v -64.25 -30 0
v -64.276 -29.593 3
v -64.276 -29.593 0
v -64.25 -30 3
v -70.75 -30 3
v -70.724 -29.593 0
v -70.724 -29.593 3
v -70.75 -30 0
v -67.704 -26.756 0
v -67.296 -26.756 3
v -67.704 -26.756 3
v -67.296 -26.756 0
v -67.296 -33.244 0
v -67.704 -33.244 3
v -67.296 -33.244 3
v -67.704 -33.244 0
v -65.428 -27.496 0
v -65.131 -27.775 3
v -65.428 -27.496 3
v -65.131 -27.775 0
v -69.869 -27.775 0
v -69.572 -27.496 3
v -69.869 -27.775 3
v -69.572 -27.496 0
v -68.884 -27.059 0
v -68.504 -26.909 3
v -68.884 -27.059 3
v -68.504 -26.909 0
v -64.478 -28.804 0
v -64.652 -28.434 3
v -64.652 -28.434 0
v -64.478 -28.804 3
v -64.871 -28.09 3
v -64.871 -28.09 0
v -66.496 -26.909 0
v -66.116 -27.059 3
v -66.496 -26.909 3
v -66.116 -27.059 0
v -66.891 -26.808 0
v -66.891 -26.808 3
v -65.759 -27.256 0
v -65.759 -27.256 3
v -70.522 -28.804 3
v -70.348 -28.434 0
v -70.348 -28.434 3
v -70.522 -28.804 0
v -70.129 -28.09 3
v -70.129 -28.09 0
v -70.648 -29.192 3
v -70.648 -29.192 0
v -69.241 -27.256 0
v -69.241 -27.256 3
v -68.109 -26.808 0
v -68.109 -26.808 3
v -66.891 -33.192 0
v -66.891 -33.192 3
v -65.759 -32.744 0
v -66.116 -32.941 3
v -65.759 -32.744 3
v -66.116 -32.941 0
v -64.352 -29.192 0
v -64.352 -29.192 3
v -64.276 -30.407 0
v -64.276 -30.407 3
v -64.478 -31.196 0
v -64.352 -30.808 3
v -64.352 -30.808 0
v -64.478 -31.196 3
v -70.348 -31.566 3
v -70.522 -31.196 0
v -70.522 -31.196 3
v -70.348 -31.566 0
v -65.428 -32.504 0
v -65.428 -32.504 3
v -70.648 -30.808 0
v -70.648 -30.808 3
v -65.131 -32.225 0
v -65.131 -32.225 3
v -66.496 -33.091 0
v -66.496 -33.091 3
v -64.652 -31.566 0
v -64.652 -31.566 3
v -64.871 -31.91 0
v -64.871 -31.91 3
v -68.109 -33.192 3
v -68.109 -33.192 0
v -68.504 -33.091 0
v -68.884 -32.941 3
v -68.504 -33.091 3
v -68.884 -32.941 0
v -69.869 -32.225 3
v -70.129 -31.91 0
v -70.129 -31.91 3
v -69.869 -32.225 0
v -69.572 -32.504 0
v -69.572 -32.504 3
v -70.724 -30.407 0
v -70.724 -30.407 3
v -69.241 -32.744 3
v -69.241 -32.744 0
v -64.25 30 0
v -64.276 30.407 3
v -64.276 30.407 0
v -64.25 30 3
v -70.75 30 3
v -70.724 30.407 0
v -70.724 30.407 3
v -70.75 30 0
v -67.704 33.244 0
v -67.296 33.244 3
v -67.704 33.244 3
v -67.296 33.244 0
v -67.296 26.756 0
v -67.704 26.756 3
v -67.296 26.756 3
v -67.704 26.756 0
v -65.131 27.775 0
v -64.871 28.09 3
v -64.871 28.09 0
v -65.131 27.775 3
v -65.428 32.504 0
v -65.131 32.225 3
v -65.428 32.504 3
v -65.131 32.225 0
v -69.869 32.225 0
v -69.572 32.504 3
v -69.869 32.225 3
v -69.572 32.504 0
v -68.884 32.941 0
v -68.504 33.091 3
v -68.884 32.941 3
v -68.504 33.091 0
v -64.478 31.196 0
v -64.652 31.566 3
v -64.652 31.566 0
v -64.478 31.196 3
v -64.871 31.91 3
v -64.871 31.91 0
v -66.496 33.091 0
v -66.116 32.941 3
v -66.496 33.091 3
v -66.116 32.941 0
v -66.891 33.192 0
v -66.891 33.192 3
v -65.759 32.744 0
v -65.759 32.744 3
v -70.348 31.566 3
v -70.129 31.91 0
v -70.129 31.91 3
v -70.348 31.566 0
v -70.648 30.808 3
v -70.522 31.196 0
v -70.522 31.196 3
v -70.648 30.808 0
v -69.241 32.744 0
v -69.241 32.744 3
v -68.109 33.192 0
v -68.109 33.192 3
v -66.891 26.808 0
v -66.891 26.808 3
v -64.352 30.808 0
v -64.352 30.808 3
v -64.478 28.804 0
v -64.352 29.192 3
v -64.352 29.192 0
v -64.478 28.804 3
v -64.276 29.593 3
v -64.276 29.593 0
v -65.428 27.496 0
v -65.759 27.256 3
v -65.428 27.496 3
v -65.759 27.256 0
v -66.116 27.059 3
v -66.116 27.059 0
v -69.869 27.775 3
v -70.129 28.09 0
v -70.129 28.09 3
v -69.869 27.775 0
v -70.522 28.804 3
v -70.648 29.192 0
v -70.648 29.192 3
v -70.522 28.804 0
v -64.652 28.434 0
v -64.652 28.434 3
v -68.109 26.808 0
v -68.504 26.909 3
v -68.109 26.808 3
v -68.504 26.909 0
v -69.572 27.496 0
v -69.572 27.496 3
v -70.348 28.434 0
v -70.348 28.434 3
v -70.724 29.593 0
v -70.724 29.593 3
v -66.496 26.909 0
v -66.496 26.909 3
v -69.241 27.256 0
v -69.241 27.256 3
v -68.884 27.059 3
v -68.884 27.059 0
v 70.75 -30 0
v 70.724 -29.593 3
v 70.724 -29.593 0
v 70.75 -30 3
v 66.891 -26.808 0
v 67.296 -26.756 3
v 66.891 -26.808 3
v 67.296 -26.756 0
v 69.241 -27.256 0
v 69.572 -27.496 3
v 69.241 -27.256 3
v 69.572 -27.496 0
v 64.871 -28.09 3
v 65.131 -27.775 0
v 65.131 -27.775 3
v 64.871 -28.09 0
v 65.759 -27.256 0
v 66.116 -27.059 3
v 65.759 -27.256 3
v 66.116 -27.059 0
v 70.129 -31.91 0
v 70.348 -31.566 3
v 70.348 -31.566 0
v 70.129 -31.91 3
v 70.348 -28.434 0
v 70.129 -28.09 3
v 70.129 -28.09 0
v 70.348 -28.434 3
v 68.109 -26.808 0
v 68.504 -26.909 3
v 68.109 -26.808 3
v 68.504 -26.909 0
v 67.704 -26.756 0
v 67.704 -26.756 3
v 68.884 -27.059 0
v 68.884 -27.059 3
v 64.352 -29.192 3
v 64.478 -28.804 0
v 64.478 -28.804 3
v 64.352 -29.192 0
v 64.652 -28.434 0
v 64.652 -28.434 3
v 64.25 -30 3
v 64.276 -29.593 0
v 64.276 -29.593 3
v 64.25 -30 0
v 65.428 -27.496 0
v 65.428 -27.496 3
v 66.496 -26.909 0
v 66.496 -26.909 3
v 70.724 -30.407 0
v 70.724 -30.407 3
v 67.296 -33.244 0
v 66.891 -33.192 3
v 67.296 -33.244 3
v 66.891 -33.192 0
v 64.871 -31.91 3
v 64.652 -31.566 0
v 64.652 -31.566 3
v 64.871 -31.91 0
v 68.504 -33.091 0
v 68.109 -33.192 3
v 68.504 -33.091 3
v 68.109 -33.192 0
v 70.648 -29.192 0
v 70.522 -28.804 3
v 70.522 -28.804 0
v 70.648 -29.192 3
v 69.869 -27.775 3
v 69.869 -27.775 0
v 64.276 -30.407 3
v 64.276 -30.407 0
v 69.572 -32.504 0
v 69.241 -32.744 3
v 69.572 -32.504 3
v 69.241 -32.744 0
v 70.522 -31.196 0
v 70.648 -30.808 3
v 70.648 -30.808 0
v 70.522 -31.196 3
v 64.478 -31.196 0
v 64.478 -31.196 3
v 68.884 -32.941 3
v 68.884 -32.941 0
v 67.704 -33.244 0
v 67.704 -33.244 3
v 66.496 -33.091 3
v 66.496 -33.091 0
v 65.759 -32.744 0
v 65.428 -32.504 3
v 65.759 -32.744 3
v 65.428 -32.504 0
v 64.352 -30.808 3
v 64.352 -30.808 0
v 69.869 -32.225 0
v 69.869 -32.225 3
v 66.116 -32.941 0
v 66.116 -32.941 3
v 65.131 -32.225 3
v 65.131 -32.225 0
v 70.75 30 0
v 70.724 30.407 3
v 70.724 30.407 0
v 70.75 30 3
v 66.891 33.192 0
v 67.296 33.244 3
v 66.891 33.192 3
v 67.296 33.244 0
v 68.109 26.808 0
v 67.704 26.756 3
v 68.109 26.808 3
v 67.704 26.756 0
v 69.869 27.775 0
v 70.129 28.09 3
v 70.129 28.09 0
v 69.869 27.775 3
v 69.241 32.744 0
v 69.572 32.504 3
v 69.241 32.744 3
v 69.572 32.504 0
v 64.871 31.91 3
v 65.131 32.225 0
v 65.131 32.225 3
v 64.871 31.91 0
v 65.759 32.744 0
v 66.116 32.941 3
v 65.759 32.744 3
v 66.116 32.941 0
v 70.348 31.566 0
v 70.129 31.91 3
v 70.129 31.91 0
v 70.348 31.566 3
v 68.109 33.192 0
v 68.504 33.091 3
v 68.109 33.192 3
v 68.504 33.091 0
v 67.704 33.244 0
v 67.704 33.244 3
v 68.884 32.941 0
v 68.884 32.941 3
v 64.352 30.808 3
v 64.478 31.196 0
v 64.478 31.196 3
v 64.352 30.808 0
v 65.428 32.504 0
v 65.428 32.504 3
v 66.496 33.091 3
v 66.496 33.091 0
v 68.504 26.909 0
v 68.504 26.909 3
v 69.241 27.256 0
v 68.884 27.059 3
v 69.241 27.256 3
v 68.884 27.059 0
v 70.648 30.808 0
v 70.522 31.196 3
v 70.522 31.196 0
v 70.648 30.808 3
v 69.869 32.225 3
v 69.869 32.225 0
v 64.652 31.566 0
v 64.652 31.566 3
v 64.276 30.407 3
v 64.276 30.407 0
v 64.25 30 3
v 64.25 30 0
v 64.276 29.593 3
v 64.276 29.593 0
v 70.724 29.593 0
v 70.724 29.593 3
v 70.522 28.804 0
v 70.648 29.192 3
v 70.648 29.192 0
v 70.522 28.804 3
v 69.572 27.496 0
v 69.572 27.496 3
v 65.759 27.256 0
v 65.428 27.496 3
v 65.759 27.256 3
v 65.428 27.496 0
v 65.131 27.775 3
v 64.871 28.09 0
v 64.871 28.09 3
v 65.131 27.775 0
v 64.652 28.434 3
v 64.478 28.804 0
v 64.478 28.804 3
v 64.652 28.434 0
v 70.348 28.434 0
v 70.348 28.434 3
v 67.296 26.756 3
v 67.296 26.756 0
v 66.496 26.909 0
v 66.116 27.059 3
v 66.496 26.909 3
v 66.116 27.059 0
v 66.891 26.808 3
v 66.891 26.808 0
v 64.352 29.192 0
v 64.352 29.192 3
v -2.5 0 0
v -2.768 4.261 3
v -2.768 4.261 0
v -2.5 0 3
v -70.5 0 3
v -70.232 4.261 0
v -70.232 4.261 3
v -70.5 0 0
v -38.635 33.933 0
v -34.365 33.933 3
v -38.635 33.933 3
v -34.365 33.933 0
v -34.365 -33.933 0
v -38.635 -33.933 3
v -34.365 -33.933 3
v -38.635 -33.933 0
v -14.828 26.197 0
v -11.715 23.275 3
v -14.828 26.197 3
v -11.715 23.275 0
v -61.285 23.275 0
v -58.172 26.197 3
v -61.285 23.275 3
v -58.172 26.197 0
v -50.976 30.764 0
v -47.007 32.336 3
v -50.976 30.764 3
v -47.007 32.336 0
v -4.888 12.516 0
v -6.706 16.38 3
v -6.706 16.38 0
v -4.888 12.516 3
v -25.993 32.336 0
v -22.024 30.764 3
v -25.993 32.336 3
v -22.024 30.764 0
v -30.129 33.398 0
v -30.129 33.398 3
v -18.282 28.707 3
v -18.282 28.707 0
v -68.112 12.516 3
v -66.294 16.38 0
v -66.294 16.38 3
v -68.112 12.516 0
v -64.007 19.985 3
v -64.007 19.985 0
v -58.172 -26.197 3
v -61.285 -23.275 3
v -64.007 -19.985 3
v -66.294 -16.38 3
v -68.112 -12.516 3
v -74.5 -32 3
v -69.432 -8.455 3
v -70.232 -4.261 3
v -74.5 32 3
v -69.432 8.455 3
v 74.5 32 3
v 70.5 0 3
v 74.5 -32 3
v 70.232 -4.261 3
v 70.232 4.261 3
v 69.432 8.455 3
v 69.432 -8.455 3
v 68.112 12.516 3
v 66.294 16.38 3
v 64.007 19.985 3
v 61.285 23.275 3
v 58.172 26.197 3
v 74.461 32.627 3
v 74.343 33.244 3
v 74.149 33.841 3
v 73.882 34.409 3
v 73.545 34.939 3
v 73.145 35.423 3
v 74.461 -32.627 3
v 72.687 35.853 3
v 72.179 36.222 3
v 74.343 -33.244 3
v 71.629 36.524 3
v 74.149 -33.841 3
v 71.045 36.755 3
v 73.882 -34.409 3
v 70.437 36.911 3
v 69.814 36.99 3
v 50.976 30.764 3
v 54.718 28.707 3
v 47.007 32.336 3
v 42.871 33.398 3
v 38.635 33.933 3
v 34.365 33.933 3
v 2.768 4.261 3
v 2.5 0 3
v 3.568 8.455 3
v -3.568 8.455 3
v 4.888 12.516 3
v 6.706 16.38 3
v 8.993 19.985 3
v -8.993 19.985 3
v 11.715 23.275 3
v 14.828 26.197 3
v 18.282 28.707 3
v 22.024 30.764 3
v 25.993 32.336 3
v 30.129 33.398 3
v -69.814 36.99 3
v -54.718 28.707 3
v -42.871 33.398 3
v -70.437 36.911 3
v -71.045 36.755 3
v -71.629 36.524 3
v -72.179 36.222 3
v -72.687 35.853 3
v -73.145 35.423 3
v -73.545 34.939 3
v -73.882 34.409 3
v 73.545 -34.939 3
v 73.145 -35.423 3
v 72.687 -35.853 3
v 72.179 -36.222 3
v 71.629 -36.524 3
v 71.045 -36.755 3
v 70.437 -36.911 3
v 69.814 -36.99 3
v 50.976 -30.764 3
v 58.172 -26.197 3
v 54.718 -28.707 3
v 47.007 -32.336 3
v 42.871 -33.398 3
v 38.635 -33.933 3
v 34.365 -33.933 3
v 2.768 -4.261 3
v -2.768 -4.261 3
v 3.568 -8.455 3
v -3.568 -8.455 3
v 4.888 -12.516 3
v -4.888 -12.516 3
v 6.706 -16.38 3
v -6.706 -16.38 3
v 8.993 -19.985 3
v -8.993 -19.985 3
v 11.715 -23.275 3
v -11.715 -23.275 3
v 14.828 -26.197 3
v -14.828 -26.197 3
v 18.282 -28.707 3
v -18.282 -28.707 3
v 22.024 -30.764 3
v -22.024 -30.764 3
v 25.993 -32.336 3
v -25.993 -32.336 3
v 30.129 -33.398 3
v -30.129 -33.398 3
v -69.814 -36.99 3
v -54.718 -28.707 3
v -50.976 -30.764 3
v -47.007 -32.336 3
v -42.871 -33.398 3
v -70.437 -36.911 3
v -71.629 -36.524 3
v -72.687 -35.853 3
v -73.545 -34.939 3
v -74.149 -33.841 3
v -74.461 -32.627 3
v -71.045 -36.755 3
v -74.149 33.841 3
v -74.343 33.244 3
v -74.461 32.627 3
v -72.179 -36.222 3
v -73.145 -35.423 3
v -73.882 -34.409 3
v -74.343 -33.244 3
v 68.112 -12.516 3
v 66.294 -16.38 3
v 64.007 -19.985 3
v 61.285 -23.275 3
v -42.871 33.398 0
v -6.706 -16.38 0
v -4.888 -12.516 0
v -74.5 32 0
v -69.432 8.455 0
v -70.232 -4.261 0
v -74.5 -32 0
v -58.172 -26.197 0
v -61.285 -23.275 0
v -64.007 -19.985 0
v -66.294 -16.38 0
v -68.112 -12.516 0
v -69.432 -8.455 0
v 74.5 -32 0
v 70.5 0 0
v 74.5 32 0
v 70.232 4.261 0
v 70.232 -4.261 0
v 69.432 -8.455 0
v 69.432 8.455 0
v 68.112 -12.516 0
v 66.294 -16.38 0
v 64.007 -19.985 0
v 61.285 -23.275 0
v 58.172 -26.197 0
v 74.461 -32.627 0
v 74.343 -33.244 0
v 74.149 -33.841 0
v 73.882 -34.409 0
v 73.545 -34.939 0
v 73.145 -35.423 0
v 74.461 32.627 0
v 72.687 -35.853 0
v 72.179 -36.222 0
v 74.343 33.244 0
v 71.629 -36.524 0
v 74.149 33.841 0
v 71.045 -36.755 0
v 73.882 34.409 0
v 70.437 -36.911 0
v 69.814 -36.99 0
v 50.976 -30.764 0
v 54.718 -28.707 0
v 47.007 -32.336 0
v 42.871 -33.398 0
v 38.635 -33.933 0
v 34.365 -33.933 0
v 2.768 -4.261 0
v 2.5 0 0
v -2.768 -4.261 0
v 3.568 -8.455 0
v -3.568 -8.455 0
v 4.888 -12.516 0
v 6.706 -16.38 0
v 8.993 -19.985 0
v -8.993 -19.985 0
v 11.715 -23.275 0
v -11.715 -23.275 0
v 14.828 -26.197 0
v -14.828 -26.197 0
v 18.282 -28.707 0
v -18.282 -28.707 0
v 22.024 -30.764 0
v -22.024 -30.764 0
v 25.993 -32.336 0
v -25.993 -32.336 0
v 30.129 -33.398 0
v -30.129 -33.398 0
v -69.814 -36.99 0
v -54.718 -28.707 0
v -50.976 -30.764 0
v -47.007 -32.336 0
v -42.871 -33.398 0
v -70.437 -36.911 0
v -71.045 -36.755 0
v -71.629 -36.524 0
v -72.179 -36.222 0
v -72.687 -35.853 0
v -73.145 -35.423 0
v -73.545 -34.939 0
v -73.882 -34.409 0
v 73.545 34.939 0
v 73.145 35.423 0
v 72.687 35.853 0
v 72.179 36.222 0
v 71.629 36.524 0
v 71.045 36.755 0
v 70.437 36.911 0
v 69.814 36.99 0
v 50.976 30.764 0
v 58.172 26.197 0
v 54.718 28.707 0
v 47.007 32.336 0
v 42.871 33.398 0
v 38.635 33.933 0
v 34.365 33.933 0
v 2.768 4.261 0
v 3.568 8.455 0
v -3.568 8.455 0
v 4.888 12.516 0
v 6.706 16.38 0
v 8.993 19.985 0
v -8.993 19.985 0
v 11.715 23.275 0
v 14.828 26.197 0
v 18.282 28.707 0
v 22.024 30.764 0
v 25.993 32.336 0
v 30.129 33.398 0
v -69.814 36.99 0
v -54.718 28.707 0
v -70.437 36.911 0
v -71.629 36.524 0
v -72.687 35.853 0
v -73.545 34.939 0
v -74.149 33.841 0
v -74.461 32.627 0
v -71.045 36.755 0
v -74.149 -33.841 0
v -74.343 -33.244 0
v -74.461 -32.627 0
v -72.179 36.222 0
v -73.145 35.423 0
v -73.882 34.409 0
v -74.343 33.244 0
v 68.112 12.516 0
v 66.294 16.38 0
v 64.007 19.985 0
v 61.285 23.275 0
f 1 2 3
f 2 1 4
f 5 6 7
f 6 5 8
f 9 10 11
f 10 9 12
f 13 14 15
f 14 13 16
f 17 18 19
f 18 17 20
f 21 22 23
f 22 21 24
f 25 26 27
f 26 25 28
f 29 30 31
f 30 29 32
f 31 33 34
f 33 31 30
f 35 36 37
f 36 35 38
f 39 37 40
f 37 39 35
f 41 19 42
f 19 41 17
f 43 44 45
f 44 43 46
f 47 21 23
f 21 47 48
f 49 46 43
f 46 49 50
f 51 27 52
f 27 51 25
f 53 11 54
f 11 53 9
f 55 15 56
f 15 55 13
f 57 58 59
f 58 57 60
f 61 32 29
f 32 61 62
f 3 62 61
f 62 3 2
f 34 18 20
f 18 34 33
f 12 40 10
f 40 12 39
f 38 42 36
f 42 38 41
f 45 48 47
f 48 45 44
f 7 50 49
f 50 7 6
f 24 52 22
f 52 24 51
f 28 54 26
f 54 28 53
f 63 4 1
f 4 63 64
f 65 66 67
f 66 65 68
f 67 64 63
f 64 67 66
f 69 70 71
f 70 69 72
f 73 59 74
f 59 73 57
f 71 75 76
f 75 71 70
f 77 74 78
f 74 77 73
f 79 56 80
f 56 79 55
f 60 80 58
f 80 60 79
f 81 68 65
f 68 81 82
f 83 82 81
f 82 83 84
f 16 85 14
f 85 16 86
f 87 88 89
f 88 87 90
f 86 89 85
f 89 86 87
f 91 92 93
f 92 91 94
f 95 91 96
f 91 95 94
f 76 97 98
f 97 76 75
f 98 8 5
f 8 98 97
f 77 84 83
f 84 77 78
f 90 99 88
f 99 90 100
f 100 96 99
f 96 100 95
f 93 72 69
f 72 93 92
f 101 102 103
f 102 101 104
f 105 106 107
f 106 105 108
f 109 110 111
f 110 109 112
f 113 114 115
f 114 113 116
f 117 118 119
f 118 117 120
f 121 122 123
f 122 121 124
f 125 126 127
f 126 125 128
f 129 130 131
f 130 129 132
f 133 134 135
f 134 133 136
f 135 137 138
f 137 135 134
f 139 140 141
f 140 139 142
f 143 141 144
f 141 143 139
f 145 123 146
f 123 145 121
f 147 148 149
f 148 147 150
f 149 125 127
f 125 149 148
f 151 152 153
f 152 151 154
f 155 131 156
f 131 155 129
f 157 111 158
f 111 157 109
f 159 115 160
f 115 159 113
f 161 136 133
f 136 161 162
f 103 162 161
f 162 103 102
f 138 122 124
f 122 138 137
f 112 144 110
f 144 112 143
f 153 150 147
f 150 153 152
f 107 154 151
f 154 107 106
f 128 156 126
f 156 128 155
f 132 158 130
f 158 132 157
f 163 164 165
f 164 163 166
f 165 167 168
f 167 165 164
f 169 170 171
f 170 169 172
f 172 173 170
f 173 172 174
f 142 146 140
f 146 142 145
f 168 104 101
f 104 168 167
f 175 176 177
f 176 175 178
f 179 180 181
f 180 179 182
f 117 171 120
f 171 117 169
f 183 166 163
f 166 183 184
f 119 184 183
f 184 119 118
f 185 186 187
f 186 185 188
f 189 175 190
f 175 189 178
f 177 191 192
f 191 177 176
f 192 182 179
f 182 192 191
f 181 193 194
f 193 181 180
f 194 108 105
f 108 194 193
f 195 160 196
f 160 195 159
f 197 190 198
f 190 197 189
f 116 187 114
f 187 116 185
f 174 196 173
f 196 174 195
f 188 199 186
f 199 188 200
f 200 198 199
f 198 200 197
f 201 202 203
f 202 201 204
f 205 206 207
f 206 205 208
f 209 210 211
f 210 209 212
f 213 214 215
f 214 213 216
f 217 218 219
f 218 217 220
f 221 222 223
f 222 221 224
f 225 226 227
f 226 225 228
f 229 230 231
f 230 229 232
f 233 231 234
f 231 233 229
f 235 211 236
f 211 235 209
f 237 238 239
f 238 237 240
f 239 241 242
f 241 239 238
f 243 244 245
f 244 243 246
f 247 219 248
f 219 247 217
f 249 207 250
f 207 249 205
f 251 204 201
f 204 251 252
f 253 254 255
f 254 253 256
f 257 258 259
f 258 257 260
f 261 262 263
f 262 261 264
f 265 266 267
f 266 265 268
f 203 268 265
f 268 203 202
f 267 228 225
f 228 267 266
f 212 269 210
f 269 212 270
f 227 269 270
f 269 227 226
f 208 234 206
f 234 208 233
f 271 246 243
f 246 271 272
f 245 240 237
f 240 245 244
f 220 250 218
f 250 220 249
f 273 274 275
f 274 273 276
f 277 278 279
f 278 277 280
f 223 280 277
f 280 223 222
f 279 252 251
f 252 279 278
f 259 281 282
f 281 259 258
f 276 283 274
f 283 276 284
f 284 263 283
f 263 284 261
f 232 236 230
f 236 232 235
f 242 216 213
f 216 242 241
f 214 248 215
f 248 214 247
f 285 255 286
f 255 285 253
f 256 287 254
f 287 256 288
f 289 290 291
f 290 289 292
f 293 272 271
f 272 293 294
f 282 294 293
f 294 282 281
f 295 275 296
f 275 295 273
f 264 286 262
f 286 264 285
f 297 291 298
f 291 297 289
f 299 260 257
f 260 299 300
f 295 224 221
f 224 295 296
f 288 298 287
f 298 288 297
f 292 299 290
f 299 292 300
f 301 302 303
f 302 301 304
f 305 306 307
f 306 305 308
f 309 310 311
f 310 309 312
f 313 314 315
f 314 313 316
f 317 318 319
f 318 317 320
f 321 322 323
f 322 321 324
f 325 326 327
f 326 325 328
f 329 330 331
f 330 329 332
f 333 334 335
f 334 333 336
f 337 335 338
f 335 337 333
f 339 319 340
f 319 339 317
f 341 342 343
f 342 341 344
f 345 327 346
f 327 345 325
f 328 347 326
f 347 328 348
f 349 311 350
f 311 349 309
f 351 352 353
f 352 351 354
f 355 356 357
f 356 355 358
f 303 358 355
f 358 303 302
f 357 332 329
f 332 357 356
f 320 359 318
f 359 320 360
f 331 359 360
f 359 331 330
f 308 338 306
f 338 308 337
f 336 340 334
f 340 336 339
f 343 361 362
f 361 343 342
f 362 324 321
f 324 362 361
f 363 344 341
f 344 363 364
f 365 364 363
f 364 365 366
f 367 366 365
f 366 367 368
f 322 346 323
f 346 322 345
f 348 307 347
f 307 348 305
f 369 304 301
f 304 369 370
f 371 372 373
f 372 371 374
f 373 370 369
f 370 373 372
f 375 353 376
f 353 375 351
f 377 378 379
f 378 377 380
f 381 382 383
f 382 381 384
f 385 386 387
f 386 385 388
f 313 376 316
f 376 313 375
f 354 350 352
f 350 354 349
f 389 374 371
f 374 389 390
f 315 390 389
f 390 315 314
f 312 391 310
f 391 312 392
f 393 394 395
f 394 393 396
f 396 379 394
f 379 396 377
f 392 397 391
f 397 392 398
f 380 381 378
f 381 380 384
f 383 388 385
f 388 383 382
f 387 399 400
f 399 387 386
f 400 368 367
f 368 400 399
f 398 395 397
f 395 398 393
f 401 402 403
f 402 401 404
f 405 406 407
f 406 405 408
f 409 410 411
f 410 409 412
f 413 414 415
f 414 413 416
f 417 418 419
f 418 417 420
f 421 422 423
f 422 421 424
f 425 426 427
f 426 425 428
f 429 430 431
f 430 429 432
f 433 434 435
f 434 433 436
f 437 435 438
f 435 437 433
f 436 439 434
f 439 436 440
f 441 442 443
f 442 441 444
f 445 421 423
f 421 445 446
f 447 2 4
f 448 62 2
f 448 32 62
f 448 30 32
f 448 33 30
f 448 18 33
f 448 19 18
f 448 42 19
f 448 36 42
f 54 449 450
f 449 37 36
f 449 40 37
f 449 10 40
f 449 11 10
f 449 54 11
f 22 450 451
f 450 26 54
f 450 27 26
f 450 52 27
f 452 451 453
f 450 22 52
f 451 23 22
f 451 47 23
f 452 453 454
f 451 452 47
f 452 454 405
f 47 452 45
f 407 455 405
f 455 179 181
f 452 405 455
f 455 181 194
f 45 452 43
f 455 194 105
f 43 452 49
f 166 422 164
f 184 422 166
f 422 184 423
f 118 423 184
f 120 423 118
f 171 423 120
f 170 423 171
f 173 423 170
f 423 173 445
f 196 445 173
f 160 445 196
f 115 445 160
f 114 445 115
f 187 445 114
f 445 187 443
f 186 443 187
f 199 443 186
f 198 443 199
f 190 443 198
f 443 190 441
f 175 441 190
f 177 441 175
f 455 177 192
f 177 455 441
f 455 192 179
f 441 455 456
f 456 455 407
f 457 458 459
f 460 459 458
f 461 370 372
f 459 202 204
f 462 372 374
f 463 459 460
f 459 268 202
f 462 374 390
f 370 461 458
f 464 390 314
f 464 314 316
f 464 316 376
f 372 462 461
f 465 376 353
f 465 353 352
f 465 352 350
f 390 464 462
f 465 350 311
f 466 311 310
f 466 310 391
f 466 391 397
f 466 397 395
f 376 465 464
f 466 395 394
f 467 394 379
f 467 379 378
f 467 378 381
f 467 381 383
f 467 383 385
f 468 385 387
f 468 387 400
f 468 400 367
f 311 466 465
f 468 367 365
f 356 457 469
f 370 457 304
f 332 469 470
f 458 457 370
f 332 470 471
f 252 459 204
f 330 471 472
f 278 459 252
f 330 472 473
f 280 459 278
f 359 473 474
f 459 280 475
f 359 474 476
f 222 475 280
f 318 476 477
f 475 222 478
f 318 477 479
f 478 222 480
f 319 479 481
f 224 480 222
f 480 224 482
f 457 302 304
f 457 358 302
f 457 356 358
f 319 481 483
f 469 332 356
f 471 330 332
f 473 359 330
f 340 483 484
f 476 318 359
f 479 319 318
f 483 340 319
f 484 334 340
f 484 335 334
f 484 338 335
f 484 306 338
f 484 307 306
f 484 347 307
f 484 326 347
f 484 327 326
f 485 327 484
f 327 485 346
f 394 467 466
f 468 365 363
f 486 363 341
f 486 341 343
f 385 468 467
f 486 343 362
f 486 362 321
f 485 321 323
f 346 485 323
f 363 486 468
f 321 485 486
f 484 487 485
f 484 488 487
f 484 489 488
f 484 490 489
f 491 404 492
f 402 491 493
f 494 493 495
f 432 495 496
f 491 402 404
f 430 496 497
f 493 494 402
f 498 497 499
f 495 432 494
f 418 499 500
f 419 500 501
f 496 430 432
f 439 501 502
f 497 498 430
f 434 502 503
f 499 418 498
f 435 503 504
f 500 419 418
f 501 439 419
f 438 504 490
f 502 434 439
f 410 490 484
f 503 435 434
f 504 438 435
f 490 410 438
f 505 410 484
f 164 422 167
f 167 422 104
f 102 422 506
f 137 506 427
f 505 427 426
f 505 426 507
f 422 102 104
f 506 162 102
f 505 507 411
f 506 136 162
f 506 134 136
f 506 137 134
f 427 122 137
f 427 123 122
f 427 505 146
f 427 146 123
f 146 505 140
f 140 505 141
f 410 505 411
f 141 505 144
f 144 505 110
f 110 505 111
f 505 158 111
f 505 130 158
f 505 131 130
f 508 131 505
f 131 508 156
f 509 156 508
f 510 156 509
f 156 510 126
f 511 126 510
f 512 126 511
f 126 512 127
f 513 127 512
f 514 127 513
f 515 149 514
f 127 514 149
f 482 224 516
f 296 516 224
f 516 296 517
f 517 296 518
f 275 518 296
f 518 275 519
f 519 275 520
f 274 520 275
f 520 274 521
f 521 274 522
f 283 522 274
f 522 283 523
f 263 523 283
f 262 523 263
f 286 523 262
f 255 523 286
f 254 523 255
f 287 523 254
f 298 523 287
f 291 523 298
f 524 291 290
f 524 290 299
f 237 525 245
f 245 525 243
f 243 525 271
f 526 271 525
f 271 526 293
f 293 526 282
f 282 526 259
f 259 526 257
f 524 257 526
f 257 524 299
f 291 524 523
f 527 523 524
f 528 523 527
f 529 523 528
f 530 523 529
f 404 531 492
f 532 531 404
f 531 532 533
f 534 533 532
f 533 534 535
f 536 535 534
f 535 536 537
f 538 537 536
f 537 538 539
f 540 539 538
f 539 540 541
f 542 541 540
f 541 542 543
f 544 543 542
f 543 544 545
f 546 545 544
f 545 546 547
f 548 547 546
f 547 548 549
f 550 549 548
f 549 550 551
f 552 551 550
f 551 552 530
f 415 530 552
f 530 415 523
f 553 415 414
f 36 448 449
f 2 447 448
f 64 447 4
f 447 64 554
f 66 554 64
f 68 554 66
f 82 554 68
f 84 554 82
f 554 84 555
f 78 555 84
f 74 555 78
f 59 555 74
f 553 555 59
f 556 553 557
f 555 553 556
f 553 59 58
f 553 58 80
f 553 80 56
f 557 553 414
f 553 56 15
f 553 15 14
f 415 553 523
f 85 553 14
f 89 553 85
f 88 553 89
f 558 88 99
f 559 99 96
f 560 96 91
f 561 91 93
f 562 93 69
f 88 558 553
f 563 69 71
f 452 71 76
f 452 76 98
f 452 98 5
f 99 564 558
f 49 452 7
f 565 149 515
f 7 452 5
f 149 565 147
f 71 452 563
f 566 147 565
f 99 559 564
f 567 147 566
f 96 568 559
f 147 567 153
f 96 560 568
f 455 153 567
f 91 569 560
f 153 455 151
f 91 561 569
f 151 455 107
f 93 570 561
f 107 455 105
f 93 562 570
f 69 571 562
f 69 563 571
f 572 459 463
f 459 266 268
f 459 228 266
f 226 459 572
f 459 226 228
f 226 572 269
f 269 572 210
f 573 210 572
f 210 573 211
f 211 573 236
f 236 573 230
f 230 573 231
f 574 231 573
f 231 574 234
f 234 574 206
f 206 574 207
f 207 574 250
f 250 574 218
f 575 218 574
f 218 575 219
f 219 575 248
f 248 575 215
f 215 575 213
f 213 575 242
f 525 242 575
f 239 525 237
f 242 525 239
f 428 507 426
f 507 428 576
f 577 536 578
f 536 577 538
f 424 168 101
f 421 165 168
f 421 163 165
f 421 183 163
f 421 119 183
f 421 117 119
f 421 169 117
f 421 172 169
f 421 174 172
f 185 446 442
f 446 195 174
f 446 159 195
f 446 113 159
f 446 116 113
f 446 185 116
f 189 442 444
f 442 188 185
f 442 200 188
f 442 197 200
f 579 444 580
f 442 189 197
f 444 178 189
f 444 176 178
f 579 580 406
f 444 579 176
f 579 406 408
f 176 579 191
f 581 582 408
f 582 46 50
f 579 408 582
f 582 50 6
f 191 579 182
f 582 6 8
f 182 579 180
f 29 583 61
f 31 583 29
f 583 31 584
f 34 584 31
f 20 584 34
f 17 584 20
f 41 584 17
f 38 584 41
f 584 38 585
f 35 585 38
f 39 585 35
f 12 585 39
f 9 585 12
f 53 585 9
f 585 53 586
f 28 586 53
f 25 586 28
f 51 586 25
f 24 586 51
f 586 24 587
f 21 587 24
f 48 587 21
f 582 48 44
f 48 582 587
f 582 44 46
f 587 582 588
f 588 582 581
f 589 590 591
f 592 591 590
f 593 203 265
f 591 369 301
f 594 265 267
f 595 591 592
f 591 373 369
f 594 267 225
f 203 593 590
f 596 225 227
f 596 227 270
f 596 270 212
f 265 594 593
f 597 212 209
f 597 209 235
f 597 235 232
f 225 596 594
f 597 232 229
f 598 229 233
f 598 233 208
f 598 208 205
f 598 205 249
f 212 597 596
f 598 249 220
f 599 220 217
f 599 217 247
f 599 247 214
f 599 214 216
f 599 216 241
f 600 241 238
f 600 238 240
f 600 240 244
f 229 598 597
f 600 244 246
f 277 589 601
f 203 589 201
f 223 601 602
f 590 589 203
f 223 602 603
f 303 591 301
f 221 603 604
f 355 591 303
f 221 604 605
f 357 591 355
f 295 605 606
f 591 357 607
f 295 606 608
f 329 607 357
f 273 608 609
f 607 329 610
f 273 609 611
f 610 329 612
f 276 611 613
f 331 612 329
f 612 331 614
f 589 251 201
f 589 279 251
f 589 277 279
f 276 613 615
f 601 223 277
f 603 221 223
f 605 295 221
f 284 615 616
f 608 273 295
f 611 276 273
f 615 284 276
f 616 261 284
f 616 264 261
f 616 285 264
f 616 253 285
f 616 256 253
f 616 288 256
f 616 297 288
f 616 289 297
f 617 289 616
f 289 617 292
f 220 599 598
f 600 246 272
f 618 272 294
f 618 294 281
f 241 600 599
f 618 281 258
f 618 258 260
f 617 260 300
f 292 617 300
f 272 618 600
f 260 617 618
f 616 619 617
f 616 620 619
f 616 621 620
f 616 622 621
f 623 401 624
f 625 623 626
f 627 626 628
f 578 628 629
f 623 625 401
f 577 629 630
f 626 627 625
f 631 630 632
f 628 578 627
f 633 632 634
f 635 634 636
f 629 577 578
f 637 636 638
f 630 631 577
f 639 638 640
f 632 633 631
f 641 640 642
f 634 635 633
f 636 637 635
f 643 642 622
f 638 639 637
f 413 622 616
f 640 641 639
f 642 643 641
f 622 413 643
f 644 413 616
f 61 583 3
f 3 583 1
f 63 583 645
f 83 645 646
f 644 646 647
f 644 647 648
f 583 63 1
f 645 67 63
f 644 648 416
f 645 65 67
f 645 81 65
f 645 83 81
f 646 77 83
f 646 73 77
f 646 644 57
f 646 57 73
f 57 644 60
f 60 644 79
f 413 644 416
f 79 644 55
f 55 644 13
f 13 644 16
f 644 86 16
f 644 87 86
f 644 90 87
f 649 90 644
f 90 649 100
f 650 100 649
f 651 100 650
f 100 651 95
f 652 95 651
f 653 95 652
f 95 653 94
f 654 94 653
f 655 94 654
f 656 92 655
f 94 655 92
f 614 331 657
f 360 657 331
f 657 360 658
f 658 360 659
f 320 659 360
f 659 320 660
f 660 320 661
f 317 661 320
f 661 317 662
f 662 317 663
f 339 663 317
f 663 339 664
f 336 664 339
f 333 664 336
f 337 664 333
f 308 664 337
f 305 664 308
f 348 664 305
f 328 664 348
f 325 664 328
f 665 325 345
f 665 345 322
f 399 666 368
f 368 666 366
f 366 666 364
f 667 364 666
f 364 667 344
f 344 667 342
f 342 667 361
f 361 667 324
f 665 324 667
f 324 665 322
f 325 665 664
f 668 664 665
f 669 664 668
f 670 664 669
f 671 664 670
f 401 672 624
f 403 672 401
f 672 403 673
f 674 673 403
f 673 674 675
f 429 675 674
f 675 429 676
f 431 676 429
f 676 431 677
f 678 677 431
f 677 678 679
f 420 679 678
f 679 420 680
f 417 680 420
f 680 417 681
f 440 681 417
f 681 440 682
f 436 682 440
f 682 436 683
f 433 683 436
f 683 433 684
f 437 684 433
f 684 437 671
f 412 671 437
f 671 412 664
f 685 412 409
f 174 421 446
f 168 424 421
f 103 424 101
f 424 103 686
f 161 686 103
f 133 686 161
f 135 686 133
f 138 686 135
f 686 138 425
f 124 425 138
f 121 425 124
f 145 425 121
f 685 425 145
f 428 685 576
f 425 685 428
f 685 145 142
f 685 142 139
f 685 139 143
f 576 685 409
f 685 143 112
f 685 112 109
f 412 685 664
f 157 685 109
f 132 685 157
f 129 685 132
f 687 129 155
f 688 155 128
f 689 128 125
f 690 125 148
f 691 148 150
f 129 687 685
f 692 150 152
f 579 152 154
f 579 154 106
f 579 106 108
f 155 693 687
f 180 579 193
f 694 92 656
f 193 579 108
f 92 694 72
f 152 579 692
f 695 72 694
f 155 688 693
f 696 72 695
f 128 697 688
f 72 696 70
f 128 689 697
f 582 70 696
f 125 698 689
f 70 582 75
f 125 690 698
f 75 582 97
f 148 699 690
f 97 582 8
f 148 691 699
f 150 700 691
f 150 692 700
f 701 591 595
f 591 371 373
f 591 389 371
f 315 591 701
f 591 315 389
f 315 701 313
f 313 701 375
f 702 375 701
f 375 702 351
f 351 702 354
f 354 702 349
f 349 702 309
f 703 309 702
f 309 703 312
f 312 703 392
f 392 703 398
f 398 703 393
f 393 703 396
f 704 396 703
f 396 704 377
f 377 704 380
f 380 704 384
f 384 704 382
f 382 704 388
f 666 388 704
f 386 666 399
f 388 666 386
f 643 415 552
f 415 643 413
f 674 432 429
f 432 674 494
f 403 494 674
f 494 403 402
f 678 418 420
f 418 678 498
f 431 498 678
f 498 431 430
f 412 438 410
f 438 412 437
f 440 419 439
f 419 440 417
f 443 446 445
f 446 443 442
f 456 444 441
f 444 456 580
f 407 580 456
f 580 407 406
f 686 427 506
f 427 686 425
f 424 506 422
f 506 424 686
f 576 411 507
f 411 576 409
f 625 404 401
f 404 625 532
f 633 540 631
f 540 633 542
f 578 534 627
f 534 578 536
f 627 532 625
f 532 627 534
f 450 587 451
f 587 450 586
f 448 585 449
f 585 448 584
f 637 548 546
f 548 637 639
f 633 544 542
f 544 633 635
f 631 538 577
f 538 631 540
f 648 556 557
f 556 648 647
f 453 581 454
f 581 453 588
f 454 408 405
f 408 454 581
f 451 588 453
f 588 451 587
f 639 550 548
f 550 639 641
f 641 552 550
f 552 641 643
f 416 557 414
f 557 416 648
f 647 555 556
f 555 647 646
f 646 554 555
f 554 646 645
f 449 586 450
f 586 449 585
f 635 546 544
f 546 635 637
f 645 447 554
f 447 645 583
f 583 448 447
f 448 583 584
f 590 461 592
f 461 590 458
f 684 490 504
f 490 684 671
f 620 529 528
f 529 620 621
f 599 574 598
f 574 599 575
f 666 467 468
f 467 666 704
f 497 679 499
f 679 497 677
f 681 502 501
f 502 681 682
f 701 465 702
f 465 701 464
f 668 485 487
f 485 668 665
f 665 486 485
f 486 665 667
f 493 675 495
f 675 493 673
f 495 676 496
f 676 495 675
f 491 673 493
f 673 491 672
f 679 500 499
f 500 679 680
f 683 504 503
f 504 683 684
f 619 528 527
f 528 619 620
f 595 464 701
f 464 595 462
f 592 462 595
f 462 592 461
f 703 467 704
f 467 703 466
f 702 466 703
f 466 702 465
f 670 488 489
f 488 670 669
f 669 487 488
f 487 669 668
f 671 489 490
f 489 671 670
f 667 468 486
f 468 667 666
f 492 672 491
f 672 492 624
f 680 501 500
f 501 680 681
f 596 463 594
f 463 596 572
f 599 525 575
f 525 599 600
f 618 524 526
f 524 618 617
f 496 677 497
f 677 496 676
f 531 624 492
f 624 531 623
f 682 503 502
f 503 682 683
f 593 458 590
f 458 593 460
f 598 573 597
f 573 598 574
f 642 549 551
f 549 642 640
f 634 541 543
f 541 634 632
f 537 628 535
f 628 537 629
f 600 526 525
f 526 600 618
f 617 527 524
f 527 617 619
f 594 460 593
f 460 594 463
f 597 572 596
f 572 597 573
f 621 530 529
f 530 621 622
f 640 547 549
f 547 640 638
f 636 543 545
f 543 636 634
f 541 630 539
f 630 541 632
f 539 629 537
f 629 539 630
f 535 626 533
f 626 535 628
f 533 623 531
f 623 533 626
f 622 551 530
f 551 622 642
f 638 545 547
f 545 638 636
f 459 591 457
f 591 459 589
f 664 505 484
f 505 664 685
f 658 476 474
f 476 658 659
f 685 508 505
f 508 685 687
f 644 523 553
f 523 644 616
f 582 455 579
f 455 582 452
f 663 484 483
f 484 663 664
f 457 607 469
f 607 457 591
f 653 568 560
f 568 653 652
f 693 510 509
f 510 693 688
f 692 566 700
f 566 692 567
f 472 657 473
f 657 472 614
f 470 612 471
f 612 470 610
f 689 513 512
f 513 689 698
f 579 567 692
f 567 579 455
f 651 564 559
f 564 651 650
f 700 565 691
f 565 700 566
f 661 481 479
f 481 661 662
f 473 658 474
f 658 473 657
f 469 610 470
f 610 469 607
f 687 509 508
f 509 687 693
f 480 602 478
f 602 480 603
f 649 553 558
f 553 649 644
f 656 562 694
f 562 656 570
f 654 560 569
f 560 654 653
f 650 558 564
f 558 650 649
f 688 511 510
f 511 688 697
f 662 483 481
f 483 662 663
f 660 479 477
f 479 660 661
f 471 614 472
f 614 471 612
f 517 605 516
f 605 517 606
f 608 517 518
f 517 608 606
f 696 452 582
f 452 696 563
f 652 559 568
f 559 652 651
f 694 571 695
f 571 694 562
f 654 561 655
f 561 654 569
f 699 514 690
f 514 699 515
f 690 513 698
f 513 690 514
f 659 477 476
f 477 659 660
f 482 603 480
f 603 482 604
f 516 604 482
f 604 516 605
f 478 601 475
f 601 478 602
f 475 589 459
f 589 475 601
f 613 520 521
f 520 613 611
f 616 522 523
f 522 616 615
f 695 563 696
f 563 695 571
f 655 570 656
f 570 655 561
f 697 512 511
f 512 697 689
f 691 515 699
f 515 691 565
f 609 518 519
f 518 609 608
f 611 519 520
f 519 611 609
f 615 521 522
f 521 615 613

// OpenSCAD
$fn = 50;


difference() {
	union() {
		hull() {
			translate(v = [-69.5000000000, 32.0000000000, 0]) {
				cylinder(h = 3, r = 5);
			}
			translate(v = [69.5000000000, 32.0000000000, 0]) {
				cylinder(h = 3, r = 5);
			}
			translate(v = [-69.5000000000, -32.0000000000, 0]) {
				cylinder(h = 3, r = 5);
			}
			translate(v = [69.5000000000, -32.0000000000, 0]) {
				cylinder(h = 3, r = 5);
			}
		}
	}
	union() {
		#translate(v = [-67.5000000000, -30.0000000000, -100.0000000000]) {
			cylinder(h = 200, r = 3.2500000000);
		}
		#translate(v = [-67.5000000000, 30.0000000000, -100.0000000000]) {
			cylinder(h = 200, r = 3.2500000000);
		}
		#translate(v = [67.5000000000, -30.0000000000, -100.0000000000]) {
			cylinder(h = 200, r = 3.2500000000);
		}
		#translate(v = [67.5000000000, 30.0000000000, -100.0000000000]) {
			cylinder(h = 200, r = 3.2500000000);
		}
		#translate(v = [-36.5000000000, 0, 0]) {
			cylinder(h = 3, r = 34.0000000000);
		}
		#translate(v = [36.5000000000, 0, 0]) {
			cylinder(h = 3, r = 34.0000000000);
		}
	}
}
